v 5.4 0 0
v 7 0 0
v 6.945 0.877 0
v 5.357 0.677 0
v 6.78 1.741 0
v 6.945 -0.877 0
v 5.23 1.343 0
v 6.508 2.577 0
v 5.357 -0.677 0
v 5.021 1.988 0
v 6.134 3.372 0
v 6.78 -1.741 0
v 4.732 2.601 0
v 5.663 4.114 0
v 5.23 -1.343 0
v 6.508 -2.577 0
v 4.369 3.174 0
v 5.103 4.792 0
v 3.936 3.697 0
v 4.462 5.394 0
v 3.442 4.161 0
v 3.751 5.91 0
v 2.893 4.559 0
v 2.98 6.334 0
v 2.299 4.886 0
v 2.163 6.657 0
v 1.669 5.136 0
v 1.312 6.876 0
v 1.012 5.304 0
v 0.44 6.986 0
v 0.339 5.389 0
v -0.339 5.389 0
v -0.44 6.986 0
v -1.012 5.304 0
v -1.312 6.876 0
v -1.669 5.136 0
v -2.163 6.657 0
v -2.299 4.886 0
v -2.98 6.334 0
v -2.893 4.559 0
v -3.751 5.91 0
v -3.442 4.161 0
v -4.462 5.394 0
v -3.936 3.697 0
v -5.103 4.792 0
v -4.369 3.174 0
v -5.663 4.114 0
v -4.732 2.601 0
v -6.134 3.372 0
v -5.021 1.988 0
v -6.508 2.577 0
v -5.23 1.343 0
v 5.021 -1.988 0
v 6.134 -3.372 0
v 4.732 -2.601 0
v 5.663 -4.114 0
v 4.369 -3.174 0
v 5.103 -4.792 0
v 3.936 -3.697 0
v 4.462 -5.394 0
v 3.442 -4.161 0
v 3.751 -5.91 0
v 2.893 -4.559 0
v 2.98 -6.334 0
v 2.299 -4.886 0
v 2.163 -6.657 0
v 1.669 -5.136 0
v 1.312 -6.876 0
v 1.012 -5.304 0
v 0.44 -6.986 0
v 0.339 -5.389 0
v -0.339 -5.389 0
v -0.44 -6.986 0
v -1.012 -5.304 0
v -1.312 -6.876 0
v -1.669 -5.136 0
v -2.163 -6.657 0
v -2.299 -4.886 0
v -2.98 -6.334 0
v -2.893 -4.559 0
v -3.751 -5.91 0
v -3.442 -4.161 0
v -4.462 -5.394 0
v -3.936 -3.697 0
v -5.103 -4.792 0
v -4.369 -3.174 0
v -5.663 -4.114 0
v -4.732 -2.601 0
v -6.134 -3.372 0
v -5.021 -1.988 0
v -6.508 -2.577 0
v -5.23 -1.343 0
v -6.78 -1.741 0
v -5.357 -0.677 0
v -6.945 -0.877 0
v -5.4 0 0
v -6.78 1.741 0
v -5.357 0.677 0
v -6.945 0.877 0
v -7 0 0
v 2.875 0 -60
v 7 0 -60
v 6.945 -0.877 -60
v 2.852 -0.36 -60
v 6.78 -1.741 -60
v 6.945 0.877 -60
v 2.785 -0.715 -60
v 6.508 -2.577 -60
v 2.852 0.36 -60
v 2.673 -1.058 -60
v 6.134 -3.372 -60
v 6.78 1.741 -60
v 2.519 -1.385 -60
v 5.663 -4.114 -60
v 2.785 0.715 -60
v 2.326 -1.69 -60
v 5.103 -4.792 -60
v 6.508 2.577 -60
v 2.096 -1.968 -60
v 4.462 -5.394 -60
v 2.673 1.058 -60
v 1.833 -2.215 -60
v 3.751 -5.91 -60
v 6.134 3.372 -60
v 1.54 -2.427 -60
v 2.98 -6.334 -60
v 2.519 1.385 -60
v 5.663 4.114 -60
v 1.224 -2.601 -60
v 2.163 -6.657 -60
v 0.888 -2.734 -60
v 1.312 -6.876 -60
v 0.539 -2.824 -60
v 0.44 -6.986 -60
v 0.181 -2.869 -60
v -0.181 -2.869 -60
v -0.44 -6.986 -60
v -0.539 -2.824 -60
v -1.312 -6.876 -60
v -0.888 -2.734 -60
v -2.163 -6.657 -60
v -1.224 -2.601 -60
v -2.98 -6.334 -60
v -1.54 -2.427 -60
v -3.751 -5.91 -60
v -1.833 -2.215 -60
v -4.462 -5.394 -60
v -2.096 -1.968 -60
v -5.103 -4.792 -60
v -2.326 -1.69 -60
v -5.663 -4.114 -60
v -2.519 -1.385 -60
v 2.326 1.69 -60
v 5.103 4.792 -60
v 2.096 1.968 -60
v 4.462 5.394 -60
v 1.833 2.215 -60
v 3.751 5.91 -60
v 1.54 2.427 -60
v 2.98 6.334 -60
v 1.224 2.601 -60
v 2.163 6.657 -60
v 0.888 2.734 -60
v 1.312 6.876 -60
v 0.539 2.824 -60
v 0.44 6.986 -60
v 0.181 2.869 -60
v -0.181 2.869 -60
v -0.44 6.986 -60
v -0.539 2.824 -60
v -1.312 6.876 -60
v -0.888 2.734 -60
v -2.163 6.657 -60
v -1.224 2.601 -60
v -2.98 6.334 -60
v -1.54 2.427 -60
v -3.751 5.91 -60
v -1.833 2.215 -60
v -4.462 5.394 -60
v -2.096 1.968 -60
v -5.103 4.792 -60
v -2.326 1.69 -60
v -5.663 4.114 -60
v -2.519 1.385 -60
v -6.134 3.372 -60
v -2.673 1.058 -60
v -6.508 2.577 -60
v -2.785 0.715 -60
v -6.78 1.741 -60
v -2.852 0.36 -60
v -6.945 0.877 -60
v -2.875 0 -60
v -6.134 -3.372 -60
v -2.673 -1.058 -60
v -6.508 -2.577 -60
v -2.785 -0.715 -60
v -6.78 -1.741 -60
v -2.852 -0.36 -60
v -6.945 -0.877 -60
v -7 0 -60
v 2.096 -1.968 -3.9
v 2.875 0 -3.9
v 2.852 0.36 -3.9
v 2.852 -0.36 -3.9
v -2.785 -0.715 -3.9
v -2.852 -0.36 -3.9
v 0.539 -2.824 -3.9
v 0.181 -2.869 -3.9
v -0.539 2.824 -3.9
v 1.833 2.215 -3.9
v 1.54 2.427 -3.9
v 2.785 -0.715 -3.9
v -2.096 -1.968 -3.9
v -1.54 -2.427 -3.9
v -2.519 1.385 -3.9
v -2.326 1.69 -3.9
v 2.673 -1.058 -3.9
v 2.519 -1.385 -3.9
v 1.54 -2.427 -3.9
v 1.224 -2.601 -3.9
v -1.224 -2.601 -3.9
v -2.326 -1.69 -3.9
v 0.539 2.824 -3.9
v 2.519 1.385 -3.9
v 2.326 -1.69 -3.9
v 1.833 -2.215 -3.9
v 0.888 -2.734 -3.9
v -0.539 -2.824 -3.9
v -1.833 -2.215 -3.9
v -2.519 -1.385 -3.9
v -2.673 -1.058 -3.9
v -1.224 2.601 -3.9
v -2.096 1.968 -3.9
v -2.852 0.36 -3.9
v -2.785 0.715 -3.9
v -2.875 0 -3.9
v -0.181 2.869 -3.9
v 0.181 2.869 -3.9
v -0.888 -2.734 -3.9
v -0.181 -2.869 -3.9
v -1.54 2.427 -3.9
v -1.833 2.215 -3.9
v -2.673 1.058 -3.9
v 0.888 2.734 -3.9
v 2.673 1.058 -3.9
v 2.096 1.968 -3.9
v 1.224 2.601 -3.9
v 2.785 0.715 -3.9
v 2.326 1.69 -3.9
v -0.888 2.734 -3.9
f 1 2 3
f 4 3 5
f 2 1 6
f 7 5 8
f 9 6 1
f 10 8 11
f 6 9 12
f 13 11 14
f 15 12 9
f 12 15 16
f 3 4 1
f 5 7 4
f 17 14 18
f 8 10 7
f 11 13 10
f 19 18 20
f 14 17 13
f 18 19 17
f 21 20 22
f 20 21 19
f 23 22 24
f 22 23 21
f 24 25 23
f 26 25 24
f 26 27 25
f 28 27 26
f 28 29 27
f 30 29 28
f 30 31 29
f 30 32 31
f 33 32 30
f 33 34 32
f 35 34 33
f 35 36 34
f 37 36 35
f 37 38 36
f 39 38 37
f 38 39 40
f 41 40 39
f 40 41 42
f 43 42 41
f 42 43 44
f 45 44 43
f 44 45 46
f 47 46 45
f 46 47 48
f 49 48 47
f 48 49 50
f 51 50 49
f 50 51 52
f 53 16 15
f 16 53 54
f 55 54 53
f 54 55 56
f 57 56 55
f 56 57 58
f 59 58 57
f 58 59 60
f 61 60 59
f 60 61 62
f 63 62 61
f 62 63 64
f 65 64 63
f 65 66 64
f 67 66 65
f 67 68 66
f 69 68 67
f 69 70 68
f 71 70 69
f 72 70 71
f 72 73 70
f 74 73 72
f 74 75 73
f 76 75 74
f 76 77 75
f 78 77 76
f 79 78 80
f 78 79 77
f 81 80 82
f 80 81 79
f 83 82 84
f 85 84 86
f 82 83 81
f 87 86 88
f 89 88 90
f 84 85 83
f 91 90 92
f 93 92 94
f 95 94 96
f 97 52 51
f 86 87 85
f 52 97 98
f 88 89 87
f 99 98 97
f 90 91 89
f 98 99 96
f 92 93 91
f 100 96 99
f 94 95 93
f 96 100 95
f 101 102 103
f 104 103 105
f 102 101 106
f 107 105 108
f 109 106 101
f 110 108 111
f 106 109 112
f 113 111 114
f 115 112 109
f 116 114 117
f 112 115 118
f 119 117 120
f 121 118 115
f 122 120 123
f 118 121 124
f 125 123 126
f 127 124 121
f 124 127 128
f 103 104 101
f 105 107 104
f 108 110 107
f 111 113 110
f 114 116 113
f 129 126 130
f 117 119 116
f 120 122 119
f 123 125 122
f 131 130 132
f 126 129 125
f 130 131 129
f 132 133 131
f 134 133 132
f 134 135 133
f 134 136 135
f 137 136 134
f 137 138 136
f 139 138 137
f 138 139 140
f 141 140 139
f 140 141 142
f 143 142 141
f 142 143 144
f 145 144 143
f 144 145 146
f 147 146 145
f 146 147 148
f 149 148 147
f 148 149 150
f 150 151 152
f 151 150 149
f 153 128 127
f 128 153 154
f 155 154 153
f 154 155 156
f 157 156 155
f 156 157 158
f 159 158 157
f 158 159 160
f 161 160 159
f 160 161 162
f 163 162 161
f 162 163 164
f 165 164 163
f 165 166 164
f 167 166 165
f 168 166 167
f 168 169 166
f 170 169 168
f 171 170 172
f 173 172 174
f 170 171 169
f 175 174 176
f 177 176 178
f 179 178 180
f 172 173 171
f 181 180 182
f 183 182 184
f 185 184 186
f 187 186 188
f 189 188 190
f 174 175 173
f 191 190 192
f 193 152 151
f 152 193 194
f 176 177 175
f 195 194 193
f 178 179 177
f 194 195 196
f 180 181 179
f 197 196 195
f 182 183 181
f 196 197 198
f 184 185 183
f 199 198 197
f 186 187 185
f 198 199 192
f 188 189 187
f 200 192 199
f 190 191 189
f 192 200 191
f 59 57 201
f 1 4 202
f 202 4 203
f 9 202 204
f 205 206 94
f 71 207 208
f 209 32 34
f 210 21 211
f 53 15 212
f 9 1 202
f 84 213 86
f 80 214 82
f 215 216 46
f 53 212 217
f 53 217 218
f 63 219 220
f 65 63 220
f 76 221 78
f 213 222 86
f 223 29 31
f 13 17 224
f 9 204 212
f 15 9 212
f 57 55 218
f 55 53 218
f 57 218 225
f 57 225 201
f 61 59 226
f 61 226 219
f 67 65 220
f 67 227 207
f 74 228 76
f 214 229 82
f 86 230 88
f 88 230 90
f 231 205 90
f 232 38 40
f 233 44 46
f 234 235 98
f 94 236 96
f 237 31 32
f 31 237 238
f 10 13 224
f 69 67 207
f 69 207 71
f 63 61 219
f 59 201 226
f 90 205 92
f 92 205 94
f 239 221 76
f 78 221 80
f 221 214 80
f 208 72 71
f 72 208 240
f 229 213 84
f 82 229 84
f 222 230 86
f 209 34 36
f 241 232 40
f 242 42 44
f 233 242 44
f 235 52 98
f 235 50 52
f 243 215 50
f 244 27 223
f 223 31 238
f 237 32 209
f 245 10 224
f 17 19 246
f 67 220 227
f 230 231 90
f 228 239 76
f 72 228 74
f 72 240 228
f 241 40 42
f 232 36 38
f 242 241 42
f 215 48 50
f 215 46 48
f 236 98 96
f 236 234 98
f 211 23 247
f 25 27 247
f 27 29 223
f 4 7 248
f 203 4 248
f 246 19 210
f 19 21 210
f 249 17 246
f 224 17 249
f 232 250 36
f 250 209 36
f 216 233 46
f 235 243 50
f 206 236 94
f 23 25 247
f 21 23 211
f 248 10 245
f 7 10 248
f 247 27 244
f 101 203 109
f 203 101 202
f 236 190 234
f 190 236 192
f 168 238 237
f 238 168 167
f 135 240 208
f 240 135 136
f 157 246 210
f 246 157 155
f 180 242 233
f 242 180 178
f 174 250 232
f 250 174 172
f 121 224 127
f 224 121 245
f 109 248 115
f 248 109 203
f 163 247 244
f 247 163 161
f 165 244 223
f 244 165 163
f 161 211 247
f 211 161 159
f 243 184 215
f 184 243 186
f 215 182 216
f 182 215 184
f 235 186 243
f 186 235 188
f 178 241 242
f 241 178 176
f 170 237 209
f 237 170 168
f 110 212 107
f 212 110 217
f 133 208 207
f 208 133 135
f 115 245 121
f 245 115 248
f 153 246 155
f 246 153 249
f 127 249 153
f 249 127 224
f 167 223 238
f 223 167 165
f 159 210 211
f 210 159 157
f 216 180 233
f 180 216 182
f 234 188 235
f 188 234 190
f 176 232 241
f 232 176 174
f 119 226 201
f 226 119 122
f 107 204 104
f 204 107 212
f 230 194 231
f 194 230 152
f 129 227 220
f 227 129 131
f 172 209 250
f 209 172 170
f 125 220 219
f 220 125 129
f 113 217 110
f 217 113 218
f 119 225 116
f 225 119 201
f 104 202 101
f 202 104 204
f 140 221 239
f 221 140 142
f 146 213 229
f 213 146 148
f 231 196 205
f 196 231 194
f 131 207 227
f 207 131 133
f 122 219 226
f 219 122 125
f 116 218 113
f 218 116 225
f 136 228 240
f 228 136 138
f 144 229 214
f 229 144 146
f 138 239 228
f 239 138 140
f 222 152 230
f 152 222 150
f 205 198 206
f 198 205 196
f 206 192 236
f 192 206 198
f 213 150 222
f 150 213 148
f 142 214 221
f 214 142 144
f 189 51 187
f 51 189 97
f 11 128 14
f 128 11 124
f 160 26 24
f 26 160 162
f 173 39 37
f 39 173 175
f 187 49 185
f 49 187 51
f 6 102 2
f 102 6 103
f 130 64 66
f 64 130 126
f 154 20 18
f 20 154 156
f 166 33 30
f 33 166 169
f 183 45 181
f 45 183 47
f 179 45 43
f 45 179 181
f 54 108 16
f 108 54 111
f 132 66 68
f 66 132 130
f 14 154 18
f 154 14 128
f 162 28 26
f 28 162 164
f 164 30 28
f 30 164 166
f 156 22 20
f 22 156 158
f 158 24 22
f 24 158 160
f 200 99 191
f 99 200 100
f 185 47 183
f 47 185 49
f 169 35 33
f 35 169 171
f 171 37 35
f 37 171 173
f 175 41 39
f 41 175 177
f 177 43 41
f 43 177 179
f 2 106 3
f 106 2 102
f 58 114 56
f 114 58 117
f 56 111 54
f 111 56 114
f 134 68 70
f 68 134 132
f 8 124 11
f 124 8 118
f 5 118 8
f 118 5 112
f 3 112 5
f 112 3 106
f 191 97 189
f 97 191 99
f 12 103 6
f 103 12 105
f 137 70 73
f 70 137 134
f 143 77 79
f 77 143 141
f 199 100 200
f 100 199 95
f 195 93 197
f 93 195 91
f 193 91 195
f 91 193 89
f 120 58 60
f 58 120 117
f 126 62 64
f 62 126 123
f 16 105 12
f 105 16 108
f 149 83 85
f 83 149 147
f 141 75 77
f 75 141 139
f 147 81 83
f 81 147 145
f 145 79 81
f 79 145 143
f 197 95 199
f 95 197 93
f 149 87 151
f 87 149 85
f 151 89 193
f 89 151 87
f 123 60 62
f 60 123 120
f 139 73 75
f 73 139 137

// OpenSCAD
$fn = 50;


difference() {
	union() {
		translate(v = [0, 0, -60.0000000000]) {
			cylinder(h = 60, r = 7.0000000000);
		}
	}
	union() {
		translate(v = [0, 0, 0]) {
			rotate(a = [0, 0, 0]) {
				difference() {
					union() {
						#translate(v = [0, 0, -60.0000000000]) {
							cylinder(h = 60, r = 2.6000000000);
						}
						#translate(v = [0, 0, -3.9000000000]) {
							cylinder(h = 3.9000000000, r1 = 2.8750000000, r2 = 5.4000000000);
						}
						#translate(v = [0, 0, -60.0000000000]) {
							cylinder(h = 60, r = 2.8750000000);
						}
						#translate(v = [0, 0, -60.0000000000]) {
							cylinder(h = 60, r = 2.6000000000);
						}
					}
					union();
				}
			}
		}
	}
}
